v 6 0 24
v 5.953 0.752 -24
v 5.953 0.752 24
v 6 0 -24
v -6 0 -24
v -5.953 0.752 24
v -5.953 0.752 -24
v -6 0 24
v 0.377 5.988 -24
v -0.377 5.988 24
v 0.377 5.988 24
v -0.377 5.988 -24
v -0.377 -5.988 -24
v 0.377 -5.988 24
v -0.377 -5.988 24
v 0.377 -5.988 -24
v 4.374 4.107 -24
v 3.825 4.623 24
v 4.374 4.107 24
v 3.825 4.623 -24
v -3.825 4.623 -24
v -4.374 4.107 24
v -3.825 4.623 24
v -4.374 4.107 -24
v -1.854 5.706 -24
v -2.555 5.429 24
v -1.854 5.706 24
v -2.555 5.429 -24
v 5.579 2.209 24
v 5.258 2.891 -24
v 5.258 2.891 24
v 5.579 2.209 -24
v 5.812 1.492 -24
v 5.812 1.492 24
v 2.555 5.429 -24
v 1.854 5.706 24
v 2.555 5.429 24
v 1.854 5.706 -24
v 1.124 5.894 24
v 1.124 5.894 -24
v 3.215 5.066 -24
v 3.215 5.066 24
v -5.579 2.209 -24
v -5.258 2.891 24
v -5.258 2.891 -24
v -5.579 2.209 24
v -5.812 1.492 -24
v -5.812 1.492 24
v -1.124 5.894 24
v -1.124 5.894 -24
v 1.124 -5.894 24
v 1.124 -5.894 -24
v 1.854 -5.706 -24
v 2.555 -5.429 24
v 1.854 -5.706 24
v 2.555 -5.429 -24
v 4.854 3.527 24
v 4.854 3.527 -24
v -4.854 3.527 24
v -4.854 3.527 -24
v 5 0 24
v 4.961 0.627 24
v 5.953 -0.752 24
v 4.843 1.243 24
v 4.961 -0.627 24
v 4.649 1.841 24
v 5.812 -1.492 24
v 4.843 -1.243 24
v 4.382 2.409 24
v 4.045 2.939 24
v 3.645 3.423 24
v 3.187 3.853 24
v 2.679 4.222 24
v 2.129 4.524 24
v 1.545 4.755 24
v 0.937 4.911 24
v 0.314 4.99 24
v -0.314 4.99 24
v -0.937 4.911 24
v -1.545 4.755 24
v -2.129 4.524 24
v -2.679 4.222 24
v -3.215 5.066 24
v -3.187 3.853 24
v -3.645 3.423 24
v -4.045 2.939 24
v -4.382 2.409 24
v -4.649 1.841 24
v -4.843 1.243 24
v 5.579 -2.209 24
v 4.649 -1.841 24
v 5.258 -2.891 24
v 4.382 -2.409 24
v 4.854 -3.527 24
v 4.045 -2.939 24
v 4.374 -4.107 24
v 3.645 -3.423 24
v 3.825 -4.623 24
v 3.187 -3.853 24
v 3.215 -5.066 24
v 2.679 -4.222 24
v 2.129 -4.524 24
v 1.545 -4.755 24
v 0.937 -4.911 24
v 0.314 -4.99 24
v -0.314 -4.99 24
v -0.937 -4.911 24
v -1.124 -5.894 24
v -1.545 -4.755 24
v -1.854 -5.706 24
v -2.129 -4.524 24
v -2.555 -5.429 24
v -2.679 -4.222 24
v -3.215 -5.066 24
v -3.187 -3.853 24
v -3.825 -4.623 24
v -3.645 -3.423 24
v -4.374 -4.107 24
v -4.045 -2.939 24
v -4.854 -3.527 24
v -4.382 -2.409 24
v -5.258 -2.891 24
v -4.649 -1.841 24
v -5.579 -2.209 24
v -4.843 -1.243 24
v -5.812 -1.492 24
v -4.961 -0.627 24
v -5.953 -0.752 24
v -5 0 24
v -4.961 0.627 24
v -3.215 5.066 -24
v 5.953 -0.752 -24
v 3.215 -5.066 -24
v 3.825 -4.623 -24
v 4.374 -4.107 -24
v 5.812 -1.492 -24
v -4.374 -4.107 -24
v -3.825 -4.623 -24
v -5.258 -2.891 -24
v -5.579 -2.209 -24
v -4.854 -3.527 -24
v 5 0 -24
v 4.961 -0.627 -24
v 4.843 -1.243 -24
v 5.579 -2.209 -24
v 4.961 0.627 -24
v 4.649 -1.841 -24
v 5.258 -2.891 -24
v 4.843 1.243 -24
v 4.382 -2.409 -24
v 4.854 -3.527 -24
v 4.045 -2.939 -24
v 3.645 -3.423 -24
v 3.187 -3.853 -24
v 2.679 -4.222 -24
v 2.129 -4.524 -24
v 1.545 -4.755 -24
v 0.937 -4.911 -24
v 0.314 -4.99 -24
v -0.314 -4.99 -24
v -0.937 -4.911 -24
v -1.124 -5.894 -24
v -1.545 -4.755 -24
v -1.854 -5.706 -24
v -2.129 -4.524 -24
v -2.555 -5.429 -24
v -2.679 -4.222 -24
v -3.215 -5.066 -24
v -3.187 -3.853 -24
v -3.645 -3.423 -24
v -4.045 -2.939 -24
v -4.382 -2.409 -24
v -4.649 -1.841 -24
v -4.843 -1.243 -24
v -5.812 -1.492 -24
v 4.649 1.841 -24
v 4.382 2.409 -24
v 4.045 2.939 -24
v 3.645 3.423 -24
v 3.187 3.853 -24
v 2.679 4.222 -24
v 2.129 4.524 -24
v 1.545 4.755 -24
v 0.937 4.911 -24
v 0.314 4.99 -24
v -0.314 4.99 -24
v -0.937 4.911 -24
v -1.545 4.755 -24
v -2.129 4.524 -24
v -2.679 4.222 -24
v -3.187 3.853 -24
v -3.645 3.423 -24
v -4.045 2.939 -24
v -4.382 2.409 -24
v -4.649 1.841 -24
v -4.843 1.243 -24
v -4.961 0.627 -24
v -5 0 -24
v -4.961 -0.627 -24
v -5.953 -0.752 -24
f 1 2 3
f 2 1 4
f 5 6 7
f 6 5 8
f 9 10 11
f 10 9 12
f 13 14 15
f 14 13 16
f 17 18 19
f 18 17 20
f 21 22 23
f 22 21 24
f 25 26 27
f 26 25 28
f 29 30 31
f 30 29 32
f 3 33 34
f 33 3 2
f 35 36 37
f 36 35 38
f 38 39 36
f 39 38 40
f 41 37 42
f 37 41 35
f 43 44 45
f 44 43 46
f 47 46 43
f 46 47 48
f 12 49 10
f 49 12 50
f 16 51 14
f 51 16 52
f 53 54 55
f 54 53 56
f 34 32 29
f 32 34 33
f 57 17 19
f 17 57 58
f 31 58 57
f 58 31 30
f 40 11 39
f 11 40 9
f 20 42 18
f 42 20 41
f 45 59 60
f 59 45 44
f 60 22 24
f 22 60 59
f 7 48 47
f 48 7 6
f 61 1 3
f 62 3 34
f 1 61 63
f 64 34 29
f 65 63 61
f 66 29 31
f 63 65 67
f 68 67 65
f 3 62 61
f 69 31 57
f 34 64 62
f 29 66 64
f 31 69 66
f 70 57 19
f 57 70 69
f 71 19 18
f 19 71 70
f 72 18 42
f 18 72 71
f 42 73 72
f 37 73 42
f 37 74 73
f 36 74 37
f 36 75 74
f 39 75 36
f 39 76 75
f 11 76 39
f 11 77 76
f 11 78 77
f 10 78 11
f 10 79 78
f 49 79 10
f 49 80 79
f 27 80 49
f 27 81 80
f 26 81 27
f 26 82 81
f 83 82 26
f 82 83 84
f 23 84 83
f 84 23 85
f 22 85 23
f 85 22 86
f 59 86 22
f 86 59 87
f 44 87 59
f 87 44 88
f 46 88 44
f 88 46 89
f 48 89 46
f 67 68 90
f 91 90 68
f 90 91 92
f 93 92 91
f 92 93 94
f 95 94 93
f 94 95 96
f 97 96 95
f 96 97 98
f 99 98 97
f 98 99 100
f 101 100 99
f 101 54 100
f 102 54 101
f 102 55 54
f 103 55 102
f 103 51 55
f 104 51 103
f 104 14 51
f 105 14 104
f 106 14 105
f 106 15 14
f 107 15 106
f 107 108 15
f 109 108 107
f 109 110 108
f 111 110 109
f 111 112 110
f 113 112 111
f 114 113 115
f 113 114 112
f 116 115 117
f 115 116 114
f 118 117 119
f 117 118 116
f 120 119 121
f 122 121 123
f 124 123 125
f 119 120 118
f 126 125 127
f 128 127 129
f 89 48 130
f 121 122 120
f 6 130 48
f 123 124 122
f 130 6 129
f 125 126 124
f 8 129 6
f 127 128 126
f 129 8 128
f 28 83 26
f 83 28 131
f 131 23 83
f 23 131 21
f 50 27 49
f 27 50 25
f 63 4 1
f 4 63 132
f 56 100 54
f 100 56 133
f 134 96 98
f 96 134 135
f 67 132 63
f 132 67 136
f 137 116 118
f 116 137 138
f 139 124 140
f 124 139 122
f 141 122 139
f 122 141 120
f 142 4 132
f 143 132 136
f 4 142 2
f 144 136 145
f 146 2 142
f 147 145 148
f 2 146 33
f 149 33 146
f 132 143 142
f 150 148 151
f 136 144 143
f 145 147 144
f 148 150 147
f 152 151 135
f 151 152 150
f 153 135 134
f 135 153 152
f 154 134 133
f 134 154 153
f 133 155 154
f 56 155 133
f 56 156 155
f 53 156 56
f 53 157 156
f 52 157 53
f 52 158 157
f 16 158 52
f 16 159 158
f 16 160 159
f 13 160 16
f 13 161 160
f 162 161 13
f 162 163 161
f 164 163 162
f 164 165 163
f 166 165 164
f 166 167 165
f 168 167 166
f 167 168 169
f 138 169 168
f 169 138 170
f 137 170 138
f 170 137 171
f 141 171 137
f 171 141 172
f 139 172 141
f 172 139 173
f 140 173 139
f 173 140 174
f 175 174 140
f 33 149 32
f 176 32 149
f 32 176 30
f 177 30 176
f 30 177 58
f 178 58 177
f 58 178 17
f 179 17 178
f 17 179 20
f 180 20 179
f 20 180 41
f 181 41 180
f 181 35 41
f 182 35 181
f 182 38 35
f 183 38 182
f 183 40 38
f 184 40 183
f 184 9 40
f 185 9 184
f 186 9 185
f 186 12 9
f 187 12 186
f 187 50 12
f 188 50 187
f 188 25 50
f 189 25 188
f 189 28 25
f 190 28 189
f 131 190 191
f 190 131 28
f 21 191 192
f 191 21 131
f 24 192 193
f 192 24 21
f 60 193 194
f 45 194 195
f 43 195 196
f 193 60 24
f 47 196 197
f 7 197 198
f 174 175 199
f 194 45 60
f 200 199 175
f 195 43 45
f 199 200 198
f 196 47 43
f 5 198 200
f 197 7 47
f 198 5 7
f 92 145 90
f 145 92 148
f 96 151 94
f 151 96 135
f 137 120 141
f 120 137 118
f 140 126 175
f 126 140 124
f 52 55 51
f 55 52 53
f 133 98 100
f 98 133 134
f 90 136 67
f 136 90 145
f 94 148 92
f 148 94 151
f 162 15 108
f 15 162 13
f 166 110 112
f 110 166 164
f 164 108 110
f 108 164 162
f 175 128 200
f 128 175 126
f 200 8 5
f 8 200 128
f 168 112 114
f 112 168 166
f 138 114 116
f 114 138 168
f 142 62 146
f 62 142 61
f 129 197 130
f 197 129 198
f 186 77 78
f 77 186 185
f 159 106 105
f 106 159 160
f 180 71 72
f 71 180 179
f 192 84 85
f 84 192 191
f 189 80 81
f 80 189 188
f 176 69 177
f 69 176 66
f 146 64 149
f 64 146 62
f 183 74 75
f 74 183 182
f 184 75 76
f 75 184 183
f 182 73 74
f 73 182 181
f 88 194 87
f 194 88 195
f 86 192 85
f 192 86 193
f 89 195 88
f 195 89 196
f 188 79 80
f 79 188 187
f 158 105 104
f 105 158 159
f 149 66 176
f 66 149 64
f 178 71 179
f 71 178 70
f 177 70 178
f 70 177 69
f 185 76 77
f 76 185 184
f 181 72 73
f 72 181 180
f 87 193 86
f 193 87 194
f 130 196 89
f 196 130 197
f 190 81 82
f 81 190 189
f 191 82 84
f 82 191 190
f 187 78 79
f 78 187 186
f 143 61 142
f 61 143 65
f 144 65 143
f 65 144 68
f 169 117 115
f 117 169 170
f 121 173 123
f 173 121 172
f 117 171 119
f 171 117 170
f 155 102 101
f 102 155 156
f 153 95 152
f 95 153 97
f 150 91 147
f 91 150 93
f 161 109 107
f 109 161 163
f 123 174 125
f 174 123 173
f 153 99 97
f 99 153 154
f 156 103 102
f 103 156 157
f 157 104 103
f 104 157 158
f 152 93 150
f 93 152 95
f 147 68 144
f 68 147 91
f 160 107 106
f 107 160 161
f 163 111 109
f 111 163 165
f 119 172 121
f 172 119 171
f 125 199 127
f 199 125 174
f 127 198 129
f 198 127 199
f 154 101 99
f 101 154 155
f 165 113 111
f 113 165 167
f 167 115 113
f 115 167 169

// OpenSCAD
$fn = 50;


difference() {
	union() {
		translate(v = [0, 0, -24.0000000000]) {
			cylinder(h = 48, r = 6.0000000000);
		}
	}
	union() {
		translate(v = [0, 0, -100.0000000000]) {
			cylinder(h = 200, r = 5);
		}
	}
}
